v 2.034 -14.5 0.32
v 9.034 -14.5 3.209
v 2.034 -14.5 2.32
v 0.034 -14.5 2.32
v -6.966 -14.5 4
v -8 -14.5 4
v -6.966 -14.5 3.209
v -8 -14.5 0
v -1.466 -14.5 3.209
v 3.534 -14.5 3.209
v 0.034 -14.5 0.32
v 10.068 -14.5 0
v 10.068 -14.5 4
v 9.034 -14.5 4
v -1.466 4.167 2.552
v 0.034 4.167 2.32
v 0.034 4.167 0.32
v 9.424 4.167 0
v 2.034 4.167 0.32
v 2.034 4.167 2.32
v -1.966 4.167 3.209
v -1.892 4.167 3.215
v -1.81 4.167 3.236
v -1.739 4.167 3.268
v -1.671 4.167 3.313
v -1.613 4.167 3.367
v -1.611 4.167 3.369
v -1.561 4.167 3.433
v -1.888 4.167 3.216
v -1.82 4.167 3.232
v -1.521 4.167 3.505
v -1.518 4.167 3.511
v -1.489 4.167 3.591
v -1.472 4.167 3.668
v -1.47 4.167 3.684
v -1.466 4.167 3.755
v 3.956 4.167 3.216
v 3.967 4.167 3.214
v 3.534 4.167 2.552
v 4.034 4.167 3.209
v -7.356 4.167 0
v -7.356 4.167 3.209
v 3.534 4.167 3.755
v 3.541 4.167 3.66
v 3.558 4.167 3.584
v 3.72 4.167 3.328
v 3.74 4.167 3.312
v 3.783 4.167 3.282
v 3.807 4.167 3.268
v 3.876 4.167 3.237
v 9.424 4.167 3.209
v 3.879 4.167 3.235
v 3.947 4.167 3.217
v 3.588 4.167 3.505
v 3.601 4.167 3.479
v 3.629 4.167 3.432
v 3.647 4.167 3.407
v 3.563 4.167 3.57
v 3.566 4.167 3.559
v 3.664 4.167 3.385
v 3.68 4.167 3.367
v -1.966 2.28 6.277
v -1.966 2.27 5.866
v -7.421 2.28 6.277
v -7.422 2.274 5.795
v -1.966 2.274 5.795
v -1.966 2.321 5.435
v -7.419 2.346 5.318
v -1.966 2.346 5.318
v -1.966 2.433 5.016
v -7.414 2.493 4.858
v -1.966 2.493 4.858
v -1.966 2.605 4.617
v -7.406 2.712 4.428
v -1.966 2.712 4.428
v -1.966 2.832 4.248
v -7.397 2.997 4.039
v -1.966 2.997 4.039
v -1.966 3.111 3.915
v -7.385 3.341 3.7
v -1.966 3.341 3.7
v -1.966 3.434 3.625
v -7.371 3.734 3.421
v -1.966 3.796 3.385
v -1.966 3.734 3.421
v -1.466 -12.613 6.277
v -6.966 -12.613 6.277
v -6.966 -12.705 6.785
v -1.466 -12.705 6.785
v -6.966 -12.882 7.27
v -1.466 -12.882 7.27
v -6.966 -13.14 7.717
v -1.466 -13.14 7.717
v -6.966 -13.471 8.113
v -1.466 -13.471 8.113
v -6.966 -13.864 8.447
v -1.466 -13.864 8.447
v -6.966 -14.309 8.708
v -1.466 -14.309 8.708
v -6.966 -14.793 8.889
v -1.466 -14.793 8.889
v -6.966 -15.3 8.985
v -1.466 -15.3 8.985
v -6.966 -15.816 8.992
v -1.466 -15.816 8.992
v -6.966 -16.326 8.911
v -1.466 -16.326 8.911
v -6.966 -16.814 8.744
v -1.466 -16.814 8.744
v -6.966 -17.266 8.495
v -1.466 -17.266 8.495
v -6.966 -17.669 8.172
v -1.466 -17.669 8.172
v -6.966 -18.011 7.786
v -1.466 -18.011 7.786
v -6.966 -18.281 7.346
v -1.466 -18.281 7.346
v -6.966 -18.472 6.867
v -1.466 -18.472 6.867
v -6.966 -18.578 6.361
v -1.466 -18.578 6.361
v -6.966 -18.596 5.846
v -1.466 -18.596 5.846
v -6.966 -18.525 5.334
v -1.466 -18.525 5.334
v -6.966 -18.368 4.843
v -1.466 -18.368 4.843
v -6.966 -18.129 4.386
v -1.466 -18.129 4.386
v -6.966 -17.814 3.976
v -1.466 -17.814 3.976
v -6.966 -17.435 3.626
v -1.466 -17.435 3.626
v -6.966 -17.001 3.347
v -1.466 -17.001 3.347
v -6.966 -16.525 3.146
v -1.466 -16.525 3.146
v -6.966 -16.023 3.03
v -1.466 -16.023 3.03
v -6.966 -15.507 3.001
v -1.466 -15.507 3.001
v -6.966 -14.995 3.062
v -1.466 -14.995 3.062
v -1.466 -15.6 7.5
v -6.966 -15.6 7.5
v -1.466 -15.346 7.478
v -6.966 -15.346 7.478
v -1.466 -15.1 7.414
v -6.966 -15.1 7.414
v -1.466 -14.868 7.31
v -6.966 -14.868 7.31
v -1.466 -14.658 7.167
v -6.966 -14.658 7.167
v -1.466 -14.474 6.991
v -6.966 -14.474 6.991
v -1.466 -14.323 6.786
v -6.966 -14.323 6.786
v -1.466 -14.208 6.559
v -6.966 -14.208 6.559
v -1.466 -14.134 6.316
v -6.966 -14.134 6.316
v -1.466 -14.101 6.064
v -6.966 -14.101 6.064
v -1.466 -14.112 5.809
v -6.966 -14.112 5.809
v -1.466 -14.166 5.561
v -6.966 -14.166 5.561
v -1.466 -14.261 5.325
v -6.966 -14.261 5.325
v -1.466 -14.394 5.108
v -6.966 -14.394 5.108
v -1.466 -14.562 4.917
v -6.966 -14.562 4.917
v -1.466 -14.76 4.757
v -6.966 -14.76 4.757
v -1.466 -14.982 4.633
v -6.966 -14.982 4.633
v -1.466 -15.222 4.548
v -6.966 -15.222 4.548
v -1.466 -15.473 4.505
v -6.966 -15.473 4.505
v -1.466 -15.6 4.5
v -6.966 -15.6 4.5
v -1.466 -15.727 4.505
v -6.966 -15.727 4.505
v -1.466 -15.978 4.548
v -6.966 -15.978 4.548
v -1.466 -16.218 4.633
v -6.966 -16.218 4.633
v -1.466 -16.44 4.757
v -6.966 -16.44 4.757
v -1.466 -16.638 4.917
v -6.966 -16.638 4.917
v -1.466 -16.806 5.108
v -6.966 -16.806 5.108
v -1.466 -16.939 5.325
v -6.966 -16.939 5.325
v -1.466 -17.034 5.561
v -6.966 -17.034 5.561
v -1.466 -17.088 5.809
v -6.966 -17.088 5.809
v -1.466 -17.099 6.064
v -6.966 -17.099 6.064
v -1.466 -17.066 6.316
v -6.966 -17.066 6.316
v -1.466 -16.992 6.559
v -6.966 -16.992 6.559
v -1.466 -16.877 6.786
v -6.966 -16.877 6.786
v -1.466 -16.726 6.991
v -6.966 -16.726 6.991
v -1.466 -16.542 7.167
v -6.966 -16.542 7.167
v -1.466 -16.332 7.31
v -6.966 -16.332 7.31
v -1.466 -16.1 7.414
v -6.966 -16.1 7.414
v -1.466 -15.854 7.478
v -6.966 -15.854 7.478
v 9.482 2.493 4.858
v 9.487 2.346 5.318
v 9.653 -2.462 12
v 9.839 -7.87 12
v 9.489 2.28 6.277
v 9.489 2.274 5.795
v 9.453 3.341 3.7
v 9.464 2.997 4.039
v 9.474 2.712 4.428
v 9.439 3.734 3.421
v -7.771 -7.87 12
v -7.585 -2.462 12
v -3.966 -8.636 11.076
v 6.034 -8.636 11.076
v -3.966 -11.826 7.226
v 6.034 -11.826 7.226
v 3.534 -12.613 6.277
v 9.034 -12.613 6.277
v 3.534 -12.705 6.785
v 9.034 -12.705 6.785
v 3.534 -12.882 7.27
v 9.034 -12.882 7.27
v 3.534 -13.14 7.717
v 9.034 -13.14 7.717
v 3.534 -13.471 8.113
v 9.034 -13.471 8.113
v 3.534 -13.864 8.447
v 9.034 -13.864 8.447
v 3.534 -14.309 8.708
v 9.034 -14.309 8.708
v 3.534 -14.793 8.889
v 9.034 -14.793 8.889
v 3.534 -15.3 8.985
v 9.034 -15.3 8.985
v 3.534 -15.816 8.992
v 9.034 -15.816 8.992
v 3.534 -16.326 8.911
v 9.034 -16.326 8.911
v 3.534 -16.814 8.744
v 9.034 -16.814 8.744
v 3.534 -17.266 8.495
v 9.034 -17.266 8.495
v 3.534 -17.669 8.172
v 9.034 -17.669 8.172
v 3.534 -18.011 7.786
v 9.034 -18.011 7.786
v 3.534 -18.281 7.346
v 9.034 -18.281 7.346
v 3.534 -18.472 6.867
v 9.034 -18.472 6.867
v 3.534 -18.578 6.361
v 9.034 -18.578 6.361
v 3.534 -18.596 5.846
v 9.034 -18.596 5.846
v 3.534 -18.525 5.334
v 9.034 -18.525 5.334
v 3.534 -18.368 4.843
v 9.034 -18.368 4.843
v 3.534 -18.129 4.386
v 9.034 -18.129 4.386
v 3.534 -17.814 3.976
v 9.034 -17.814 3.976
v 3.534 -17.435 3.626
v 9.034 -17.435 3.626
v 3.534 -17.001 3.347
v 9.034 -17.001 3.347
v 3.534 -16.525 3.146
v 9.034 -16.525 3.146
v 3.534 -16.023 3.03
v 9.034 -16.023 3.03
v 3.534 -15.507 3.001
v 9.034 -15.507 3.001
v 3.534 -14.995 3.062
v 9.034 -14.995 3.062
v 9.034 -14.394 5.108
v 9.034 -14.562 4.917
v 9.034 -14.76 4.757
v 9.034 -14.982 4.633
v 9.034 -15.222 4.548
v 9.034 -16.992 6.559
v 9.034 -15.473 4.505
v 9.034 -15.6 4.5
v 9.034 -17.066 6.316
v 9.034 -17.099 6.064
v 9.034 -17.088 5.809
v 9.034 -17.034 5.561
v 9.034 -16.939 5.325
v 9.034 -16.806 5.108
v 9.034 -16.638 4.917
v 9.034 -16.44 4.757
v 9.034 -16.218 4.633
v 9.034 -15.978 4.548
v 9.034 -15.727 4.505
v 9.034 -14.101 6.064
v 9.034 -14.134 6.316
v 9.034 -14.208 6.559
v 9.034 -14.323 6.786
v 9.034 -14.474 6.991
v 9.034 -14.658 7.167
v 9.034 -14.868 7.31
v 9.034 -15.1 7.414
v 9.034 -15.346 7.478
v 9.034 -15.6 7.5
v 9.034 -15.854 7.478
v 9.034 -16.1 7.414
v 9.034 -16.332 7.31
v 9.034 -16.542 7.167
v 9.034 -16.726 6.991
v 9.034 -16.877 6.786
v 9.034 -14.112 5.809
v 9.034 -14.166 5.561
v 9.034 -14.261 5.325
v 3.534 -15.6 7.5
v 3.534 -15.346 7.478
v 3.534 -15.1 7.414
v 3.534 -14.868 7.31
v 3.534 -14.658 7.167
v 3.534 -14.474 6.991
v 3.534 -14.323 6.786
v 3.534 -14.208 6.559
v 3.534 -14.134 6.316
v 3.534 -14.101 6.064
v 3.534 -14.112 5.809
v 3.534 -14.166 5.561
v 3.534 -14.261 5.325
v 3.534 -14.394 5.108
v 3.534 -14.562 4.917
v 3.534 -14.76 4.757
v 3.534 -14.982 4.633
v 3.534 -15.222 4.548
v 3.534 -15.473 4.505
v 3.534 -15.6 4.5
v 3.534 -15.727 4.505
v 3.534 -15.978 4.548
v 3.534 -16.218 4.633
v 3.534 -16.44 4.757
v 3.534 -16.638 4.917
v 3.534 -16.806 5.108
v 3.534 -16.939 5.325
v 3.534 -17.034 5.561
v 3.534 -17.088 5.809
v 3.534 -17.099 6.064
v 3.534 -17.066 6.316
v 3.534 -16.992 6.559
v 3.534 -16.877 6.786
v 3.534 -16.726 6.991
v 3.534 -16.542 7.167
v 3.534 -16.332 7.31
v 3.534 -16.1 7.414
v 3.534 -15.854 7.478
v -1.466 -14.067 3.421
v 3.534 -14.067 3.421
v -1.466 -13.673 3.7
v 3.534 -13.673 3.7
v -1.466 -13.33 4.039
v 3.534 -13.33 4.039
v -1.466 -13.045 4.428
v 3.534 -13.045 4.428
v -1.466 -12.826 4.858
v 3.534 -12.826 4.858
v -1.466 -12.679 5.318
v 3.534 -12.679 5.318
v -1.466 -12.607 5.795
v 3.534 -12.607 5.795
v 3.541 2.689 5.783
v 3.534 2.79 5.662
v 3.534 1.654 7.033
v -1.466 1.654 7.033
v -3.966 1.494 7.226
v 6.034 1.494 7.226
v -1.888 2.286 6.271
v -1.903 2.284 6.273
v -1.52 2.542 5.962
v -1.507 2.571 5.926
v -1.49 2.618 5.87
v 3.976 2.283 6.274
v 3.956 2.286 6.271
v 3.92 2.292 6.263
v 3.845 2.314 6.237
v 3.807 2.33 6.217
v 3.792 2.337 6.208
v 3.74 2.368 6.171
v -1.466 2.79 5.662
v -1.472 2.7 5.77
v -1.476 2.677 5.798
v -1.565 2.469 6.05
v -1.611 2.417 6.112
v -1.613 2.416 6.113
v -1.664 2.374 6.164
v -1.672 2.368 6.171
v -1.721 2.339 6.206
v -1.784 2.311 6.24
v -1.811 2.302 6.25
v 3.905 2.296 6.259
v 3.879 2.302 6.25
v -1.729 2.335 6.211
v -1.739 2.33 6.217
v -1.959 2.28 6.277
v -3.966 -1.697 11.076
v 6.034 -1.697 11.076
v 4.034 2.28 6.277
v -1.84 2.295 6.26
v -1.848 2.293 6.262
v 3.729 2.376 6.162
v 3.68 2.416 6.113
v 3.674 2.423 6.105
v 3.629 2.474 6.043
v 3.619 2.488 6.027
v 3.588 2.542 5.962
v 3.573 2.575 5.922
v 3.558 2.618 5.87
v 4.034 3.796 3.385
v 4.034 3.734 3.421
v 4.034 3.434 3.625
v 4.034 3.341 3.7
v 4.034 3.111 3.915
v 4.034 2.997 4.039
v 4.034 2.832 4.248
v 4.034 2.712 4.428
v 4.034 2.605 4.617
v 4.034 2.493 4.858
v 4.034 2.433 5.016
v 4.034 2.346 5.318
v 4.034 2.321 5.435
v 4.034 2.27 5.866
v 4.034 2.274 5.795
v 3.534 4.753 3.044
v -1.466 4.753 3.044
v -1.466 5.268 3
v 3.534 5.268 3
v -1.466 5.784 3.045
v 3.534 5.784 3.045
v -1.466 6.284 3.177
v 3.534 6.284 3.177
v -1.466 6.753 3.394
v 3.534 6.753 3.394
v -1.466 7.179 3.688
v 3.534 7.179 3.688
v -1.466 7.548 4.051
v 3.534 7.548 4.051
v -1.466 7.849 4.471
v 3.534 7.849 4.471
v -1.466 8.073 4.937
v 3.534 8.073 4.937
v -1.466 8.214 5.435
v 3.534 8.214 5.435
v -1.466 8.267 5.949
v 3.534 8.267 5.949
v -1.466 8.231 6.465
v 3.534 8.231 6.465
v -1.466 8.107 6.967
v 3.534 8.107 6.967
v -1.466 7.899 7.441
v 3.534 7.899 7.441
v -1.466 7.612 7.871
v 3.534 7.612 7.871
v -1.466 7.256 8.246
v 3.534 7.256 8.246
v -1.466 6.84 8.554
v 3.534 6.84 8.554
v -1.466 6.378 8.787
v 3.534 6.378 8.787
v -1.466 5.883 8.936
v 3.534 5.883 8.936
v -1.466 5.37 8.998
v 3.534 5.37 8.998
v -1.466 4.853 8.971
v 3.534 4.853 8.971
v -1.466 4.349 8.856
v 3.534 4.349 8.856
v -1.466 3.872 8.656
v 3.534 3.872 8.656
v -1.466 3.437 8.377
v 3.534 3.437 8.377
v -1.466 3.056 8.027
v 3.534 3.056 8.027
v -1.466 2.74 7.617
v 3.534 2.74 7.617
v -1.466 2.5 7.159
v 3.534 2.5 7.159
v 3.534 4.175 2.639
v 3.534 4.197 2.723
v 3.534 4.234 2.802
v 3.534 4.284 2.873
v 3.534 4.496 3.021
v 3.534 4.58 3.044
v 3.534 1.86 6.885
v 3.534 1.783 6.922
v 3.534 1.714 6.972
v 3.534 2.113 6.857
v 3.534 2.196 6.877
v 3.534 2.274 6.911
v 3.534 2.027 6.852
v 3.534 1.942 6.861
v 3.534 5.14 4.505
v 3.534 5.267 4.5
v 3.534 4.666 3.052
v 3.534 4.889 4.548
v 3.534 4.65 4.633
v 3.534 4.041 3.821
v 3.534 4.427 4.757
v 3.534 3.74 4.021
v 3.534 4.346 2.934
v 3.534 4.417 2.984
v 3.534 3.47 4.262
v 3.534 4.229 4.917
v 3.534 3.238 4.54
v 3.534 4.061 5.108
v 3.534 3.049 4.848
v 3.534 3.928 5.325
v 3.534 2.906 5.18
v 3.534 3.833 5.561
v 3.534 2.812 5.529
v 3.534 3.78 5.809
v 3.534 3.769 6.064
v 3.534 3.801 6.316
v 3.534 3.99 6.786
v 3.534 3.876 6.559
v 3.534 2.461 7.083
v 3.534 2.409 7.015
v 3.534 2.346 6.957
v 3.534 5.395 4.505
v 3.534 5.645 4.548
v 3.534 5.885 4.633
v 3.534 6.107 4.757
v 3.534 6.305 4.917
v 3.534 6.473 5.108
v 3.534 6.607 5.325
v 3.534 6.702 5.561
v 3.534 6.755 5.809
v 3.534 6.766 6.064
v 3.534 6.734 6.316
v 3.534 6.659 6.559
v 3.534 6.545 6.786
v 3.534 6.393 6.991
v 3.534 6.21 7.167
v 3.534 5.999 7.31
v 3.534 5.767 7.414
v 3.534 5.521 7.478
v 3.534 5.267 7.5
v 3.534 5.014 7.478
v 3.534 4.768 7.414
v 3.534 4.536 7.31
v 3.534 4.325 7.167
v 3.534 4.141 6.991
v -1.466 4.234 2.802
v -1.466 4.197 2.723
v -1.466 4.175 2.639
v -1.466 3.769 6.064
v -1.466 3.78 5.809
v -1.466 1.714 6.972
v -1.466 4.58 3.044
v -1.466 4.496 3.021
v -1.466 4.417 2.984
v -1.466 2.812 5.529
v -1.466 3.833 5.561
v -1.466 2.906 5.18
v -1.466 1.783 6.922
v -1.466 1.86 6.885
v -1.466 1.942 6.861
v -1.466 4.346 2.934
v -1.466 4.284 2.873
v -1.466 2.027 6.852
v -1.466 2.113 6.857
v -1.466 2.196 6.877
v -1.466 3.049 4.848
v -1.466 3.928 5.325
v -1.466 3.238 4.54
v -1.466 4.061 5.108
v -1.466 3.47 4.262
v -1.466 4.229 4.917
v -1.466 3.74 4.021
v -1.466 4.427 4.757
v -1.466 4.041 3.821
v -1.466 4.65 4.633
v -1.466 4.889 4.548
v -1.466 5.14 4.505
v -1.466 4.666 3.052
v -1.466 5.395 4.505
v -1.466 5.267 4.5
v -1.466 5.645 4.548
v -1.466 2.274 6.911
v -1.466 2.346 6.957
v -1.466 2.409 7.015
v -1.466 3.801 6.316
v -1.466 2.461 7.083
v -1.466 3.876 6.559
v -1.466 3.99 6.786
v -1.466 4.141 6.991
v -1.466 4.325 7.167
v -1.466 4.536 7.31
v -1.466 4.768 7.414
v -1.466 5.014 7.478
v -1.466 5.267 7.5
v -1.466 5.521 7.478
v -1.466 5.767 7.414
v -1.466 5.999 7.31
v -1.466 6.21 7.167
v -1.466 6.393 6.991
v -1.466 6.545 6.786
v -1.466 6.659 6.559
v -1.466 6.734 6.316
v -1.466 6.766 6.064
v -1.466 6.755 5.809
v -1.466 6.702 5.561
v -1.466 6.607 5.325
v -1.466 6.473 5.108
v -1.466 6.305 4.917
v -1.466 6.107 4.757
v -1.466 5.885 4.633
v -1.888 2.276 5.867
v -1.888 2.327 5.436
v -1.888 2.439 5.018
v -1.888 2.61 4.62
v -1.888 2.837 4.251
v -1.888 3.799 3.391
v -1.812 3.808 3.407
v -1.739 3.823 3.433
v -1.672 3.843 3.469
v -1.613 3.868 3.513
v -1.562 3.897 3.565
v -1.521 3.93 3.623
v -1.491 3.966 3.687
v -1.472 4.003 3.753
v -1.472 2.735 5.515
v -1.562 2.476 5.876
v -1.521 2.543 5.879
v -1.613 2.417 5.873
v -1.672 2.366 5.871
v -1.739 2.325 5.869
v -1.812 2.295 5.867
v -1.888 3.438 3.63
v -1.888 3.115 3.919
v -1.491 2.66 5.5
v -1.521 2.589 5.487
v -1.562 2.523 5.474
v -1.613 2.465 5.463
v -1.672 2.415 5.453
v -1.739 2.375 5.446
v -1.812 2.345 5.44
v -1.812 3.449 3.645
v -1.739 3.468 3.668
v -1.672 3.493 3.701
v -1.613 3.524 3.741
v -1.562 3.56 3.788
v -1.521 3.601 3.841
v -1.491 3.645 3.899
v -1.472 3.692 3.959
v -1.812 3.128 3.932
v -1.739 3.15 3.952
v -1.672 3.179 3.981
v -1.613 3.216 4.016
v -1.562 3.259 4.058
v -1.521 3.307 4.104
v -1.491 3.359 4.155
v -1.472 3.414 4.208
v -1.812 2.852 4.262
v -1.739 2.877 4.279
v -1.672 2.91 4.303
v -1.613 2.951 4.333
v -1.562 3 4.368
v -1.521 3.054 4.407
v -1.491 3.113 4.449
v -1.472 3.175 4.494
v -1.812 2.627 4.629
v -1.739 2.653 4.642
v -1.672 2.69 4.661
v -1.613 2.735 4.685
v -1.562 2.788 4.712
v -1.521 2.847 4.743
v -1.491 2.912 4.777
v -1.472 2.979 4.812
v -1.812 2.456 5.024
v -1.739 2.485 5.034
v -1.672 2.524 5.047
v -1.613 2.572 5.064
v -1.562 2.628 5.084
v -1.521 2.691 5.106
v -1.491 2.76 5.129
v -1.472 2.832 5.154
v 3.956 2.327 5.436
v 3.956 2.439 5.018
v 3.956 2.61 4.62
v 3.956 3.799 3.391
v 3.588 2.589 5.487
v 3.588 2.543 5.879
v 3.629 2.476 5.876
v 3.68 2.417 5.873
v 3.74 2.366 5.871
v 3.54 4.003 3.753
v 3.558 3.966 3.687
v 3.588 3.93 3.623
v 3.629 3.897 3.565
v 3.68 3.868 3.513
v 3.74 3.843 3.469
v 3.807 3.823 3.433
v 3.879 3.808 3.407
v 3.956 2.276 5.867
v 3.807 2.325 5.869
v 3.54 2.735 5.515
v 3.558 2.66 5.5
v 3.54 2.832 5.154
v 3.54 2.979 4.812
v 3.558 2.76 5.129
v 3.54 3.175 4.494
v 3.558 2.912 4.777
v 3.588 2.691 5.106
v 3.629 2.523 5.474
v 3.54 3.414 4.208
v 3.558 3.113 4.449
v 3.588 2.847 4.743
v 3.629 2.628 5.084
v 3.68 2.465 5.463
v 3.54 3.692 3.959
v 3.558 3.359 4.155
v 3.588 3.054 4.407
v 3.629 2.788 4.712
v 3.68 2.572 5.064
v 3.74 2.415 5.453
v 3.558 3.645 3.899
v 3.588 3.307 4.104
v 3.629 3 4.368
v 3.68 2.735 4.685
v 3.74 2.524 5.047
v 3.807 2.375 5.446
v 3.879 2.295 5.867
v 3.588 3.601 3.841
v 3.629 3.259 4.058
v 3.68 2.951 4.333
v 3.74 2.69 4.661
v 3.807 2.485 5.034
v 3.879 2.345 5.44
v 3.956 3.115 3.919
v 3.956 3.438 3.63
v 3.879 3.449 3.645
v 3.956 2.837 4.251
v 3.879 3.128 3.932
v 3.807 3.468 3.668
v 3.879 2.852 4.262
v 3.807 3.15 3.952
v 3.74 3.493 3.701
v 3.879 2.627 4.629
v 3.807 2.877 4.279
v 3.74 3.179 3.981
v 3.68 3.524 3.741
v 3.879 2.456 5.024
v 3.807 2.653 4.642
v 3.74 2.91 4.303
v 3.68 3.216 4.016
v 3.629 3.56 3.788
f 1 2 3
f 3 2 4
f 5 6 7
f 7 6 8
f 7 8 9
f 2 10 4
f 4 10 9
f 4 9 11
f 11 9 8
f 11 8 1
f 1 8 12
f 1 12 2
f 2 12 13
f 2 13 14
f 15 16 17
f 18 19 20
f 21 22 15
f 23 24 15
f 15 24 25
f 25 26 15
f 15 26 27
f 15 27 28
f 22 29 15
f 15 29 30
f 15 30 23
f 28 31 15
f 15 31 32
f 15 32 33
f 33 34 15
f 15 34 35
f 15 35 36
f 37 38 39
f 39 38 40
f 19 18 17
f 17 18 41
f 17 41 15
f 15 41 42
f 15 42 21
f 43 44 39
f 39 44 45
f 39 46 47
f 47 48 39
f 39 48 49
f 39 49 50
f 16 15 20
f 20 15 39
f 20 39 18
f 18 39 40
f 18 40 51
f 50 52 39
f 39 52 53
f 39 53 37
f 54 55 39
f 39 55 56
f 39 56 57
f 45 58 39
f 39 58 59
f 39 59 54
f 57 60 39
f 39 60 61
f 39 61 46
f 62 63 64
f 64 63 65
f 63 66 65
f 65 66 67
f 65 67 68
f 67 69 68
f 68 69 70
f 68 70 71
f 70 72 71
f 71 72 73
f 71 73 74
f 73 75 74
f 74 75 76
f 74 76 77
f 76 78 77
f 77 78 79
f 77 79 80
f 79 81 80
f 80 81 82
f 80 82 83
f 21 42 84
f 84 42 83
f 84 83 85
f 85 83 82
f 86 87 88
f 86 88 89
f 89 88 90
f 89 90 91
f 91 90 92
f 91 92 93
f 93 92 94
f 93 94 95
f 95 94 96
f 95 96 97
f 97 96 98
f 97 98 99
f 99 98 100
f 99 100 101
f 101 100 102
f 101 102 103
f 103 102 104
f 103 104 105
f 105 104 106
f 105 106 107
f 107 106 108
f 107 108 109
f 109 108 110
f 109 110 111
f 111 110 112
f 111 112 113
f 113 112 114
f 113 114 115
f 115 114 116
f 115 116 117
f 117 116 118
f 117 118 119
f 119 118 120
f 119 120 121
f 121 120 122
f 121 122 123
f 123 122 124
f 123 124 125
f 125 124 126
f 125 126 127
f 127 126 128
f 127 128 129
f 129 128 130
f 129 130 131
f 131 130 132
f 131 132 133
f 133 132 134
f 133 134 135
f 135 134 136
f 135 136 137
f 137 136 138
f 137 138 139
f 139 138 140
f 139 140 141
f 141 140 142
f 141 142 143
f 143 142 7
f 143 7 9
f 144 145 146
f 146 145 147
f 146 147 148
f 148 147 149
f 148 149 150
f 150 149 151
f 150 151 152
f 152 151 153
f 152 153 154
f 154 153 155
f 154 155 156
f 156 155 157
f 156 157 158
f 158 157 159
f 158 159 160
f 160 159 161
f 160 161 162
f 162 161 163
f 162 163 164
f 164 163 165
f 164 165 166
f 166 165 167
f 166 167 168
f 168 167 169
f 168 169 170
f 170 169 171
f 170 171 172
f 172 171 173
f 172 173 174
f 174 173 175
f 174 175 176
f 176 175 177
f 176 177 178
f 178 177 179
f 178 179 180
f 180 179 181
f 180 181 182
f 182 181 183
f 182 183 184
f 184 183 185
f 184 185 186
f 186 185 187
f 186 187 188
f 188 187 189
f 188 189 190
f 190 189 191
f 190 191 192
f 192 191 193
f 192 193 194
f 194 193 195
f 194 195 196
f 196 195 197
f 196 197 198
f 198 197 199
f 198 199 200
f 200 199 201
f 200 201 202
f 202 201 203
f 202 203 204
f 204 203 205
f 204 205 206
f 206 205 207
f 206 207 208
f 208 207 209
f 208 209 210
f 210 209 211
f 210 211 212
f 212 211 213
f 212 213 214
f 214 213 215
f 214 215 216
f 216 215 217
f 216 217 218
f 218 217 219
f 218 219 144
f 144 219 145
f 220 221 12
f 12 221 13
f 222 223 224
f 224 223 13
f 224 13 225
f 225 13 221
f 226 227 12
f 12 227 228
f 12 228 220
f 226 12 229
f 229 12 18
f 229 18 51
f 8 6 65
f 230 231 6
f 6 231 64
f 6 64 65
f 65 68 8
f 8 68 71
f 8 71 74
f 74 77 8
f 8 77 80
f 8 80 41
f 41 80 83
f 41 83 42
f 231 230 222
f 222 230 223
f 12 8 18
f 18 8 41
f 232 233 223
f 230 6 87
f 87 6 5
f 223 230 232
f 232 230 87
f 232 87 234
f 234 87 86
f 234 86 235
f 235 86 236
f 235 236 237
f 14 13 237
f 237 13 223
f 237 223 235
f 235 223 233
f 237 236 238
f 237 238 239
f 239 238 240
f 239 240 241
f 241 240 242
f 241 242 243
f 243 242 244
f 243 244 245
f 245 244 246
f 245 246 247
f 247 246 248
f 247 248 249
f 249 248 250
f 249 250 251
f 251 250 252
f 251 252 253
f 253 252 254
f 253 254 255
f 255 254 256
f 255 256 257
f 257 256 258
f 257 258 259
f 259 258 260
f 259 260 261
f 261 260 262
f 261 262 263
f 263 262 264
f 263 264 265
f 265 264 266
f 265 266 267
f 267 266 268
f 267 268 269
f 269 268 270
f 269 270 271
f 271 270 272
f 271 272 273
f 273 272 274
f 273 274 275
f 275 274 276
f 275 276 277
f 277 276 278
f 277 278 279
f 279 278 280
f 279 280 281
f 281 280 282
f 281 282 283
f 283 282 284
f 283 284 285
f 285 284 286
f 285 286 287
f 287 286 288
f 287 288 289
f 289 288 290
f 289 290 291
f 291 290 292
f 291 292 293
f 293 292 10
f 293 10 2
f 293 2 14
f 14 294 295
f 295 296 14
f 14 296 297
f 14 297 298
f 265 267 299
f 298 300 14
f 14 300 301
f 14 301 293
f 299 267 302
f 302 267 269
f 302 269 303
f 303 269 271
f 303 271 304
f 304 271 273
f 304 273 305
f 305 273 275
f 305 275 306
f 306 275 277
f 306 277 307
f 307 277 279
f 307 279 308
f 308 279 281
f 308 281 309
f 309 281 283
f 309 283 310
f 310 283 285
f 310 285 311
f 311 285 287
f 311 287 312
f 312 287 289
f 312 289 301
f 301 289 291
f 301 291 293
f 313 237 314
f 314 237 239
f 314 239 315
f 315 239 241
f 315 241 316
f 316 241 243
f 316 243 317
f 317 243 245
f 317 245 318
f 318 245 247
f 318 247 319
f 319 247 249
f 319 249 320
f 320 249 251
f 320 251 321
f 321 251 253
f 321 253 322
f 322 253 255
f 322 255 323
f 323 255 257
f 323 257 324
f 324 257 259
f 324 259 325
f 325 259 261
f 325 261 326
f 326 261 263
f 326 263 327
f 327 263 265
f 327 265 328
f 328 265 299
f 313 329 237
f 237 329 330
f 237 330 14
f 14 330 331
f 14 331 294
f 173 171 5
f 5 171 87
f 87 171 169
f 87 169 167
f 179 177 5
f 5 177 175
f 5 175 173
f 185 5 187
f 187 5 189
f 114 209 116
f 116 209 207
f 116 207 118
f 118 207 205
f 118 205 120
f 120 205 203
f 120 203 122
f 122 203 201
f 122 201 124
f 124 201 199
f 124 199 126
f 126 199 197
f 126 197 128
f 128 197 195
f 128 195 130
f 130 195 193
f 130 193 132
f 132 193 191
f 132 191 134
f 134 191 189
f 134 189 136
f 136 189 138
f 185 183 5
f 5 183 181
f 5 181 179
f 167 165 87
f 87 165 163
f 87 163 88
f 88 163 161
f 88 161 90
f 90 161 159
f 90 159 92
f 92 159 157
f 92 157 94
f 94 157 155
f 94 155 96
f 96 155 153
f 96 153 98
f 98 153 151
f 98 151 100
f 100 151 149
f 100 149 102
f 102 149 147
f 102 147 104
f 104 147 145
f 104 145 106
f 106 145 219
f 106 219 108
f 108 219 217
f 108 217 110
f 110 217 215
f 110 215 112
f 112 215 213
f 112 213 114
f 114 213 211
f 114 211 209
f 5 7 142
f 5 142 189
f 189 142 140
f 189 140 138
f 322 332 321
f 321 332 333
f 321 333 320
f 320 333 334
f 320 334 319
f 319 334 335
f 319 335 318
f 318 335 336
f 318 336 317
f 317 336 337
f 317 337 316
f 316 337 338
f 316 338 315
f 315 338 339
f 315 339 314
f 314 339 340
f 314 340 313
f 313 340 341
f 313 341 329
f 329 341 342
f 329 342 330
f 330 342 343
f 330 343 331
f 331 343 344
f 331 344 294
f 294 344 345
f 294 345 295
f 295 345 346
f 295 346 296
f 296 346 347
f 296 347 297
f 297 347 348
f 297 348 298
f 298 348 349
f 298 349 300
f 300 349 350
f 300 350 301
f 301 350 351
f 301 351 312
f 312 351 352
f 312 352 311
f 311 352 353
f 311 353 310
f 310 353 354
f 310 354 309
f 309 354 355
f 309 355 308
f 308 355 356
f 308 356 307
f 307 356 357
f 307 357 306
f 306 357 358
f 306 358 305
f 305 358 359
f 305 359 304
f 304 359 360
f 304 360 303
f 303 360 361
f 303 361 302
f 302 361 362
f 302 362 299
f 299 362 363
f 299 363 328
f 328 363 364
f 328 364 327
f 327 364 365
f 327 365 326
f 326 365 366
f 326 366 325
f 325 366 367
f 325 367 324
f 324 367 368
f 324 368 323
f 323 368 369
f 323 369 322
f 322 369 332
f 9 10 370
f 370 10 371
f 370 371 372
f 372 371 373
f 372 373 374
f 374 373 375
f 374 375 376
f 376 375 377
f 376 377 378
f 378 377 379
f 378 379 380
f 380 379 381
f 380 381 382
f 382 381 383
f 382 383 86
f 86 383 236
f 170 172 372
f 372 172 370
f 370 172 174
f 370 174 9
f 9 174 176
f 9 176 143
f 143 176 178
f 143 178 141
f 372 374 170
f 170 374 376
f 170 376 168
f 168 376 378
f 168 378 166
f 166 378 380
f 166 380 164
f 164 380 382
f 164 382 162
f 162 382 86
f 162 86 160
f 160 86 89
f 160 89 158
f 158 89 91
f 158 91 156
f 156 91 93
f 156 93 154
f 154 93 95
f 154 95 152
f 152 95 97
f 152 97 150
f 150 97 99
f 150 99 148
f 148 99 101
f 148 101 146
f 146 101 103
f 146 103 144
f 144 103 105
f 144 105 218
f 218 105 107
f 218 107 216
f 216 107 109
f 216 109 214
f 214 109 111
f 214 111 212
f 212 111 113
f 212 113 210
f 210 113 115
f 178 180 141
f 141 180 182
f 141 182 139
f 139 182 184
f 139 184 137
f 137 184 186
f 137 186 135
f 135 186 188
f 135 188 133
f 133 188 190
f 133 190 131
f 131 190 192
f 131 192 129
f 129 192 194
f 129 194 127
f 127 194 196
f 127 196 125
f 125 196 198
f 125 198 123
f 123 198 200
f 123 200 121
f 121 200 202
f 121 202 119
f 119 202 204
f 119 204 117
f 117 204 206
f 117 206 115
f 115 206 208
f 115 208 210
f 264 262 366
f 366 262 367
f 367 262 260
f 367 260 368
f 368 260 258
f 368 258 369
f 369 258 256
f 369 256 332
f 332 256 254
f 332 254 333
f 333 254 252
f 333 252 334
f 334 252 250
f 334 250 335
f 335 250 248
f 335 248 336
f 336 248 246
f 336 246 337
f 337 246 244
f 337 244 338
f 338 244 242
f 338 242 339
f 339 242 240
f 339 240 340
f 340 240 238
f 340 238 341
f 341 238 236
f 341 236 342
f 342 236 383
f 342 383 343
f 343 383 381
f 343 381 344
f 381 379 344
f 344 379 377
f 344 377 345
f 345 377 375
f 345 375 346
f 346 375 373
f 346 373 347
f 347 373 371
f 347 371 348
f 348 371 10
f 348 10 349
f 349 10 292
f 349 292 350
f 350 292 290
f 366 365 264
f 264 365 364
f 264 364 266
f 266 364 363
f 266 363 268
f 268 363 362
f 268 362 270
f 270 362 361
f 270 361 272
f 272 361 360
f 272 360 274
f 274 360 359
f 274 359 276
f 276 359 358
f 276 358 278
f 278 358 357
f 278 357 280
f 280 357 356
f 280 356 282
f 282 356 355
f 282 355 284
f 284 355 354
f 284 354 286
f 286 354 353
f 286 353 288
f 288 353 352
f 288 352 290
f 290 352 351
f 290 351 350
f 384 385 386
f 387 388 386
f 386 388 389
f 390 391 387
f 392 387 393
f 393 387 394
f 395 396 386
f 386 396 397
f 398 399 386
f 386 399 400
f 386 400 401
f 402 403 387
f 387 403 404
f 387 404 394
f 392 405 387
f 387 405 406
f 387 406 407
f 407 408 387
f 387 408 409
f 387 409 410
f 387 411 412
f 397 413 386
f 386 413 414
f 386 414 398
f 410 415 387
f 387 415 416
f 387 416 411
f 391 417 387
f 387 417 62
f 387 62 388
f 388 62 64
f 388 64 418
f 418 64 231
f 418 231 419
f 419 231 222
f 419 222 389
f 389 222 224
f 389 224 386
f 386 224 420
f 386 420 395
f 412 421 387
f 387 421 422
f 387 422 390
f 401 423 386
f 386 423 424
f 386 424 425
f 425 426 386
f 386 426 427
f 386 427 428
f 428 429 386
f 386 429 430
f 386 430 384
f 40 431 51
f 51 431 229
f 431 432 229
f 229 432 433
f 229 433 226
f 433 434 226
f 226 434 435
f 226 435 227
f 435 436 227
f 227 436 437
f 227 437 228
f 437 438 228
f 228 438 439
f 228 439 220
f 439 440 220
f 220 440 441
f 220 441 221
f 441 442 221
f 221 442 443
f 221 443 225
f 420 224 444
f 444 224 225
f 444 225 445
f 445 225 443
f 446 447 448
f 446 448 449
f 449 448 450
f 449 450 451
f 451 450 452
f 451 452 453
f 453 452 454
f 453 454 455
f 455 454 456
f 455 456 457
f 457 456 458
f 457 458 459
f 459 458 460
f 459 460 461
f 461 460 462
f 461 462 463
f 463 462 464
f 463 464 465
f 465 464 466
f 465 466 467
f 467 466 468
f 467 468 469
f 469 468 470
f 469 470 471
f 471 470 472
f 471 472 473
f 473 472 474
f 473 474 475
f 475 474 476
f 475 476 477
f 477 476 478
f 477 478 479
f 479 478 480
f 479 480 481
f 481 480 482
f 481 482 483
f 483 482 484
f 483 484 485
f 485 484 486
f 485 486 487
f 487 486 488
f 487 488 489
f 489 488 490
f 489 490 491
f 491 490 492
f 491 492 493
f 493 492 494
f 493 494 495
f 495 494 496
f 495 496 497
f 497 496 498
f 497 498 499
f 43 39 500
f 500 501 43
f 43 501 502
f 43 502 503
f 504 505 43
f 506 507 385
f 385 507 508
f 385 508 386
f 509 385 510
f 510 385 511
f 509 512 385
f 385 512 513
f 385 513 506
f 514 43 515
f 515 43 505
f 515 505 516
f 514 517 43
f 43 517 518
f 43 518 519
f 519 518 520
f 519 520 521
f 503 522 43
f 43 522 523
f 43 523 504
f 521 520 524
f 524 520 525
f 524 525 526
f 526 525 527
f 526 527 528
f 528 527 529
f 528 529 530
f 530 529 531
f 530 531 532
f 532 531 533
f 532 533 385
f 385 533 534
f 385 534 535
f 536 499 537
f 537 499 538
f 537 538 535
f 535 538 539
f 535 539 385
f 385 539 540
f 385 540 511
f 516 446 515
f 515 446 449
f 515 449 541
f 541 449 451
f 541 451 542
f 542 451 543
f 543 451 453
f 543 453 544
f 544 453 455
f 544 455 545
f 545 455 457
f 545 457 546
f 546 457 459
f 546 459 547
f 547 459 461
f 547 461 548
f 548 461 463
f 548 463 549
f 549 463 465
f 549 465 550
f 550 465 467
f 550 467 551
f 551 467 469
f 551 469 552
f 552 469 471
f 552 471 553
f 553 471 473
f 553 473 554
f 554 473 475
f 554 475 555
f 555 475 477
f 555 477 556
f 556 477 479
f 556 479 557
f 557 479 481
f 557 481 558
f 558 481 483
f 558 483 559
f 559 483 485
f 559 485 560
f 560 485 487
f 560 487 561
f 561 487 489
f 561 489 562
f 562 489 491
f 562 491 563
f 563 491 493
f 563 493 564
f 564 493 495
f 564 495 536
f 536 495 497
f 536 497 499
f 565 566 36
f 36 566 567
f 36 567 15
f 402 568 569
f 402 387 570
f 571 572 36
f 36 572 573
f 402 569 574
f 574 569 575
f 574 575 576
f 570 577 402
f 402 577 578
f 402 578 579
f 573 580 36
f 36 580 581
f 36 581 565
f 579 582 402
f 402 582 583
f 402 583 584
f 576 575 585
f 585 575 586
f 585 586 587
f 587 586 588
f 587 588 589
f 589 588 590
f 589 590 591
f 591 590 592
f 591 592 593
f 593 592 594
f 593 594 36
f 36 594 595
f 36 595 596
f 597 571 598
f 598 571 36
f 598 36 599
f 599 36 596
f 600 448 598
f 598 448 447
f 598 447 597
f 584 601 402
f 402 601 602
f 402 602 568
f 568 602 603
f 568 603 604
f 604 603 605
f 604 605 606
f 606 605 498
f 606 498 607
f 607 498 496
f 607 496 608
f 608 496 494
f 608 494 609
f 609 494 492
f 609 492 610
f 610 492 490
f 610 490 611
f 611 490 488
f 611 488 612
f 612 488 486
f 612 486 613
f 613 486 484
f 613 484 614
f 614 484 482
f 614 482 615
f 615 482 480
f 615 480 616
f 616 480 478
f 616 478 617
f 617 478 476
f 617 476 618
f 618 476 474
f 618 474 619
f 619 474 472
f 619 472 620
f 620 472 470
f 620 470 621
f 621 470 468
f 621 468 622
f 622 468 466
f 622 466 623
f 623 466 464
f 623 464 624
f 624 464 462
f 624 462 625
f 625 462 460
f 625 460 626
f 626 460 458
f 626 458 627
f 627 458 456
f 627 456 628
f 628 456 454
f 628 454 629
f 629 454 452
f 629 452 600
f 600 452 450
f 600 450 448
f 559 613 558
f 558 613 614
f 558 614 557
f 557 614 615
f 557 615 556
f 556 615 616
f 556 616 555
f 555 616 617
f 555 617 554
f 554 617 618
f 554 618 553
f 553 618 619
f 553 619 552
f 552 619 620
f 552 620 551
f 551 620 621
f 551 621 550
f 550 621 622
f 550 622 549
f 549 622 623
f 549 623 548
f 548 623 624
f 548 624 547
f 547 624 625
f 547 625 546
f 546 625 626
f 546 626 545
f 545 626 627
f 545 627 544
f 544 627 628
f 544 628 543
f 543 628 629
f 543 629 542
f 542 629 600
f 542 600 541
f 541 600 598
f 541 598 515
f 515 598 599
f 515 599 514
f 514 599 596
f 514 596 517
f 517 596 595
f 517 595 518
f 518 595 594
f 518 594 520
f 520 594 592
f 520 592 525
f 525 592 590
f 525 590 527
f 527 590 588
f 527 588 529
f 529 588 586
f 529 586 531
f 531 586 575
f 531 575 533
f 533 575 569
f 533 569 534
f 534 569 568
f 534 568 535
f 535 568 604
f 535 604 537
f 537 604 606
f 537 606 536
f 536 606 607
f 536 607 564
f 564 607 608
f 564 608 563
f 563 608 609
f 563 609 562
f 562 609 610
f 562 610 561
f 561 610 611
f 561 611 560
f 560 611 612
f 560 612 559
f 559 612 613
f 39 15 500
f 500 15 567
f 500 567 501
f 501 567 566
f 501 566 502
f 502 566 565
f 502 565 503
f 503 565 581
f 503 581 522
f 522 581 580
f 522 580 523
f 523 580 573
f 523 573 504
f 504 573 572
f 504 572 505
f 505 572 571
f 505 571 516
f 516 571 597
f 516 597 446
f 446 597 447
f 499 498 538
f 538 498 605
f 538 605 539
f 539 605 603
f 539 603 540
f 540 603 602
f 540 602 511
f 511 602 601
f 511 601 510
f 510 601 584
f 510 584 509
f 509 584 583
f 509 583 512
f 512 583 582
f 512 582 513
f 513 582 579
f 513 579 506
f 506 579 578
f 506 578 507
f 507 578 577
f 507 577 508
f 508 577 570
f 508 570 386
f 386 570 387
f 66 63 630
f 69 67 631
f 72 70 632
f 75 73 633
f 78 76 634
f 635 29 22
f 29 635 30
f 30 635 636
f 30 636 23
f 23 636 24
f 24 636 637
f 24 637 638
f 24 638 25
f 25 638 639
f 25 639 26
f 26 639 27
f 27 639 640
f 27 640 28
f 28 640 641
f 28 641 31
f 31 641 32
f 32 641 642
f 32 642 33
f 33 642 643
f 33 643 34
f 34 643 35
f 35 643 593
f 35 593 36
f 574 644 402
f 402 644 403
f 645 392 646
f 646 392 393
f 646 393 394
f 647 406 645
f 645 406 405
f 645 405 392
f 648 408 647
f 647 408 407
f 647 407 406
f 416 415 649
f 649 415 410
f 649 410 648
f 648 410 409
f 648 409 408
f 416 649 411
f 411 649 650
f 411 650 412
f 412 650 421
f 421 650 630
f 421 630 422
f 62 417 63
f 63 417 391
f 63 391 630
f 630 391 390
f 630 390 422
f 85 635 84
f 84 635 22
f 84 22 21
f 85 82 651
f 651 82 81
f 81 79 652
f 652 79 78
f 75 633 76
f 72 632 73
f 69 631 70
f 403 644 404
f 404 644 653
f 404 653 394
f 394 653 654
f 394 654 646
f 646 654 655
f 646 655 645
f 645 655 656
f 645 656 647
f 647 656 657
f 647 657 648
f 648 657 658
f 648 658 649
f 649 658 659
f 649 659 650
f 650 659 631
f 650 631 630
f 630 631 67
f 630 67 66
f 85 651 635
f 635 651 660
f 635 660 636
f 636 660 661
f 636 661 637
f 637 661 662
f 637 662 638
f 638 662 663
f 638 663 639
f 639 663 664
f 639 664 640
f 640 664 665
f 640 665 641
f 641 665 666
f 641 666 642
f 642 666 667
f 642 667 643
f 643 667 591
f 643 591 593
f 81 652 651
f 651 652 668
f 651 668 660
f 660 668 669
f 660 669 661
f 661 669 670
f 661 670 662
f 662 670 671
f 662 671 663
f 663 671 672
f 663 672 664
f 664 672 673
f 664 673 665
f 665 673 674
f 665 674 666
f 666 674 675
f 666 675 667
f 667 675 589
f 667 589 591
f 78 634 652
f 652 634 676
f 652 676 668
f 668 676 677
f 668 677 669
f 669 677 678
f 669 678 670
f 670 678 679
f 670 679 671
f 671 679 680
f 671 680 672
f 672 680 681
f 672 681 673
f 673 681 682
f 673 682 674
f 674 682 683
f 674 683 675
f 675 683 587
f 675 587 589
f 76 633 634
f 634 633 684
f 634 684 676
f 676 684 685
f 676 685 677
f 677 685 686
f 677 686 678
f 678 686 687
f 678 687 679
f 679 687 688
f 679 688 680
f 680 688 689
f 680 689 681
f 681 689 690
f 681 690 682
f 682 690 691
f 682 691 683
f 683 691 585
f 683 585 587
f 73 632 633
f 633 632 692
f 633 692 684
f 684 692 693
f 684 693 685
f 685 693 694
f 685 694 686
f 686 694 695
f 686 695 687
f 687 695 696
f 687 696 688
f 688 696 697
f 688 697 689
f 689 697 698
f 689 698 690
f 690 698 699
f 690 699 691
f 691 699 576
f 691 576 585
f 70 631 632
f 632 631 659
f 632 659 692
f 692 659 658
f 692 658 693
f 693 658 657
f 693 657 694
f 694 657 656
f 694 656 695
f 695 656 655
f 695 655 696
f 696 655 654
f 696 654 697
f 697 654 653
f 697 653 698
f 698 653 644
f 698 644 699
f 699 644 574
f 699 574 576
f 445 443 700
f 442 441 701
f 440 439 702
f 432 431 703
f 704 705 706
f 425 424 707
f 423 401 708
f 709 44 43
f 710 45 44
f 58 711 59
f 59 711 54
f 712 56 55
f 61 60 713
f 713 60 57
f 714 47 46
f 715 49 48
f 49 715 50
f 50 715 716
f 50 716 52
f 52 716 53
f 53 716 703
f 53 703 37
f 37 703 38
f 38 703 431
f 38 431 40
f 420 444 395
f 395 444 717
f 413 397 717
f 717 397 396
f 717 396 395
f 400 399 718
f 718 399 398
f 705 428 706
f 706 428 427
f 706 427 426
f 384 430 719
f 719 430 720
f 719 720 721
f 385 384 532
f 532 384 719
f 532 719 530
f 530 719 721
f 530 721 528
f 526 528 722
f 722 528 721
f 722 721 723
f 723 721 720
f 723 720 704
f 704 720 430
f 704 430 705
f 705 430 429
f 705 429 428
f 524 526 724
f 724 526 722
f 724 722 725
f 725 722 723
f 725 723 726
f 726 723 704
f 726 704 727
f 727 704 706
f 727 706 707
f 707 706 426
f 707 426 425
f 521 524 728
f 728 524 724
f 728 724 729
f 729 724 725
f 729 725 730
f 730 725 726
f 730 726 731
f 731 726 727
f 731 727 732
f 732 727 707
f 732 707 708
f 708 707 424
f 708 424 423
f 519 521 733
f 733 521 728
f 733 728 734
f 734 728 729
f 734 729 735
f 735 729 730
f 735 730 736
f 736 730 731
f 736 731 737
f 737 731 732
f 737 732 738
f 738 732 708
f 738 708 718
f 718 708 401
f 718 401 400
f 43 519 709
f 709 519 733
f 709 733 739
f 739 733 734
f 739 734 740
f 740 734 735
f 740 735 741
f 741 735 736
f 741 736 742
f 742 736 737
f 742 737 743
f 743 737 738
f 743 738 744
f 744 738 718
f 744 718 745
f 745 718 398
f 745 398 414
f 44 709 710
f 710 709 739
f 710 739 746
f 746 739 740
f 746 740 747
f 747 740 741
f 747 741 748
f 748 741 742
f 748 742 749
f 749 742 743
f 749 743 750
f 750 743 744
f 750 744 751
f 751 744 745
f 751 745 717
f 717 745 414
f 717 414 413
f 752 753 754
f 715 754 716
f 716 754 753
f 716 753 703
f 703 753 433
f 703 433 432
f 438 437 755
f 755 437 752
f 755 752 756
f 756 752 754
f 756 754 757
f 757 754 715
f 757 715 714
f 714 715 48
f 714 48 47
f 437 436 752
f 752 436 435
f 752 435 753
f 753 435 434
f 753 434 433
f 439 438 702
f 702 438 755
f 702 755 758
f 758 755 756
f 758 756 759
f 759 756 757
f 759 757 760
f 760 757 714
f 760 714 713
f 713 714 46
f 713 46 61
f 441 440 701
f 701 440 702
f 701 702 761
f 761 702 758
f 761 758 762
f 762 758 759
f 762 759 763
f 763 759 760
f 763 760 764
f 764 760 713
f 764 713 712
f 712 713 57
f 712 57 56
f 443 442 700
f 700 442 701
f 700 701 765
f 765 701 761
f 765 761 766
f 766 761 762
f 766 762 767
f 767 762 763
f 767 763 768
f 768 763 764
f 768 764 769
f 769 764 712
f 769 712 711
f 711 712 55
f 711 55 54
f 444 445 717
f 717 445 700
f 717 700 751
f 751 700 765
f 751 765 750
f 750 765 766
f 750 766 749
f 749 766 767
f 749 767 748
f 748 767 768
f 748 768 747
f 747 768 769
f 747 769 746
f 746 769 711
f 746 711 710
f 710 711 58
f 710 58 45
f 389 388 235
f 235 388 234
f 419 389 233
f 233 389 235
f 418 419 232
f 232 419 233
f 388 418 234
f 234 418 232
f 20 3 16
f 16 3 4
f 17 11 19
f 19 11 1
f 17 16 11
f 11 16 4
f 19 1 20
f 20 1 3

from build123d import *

# Parameters (mm, degrees)
BOSS_EXTRUDE2_DEPTH             = 12
CUT_EXTRUDE2_DEPTH              = 22.571014648492383
CUT_EXTRUDE2_DEPTH_BACK         = 22.571014648492383
SKETCH17_R                      = 3.0000000000000298
SKETCH17_R_2                    = 1.5000000000000007
BOSS_EXTRUDE3_DEPTH             = 2.5
CUT_EXTRUDE3_DEPTH              = 25.679395227729078
CUT_EXTRUDE3_DEPTH_BACK         = 25.679395227729078
SKETCH19_R                      = 1.4999999999999996
BOSS_EXTRUDE4_DEPTH             = 8
SKETCH19_3_R                    = 3.0000000000000004
CUT_EXTRUDE4_DEPTH              = 2.5
CUT_EXTRUDE5_START              = 10
SKETCH20_R                      = 2.9999999999999996
CUT_EXTRUDE5_DEPTH              = 10
SKETCH21_R                      = 2.999999999999999
CUT_EXTRUDE6_DEPTH              = 10
FILLET6_R                       = 0.5000000000000004
FILLET7_R                       = 0.5000000000000004
FILLET8_R                       = 0.5000000000000004
CUT_EXTRUDE8_DEPTH              = 25.679395276352636
CUT_EXTRUDE8_DEPTH_BACK         = 25.679395276352636
CUT_EXTRUDE9_DEPTH              = 24.90754642395463
CUT_EXTRUDE9_DEPTH_BACK         = 24.90754642395463
SKETCH26_R                      = 3
SKETCH27_R                      = 2.9999999999999996
SKETCH27_R_2                    = 1.4999999999999996
BOSS_EXTRUDE6_DEPTH             = 2.5
FILLET9_R                       = 0.5
FILLET10_R                      = 0.5
CUT_EXTRUDE10_REACH             = 22.744
SKETCH29_W                      = 10
SKETCH29_H                      = 3.8498556304138605
CUT_EXTRUDE10_DIRECTION_2_REACH = 22.744
CUT_EXTRUDE11_DEPTH             = 1


with BuildPart() as part:
    # Sketch1 → Boss-Extrude2 (new body)
    with BuildSketch(Plane.XY):
        Polygon((-7.999999999999995, -14.500000000000002), (-6.966131724806635, 15.482179980607619), (9.033868275193369, 15.482179980607619), (10.067736550386755, -14.500000000000002), align=None)
    extrude(amount=BOSS_EXTRUDE2_DEPTH)

    # Sketch16 → Cut-Extrude2 (cut, two sides: drawn at the far end of the back side and taken through both)
    with BuildSketch(Plane(origin=(1.0338682751933665, 0, 0), x_dir=(0, 0, -1), z_dir=(1, 0, 0)).offset(-CUT_EXTRUDE2_DEPTH_BACK)):
        Polygon((-12, 8.852541981440545), (-4, 15.482179980607619), (-12, 15.482179980607619), align=None)
    extrude(amount=CUT_EXTRUDE2_DEPTH + CUT_EXTRUDE2_DEPTH_BACK, mode=Mode.SUBTRACT)

    # Sketch17 → Boss-Extrude3 (add, symmetric)
    with BuildSketch(Plane(origin=(1.0338682751933665, 0, 0), x_dir=(0, 0, -1), z_dir=(1, 0, 0))):
        with Locations((-6.000000000000029, 16.582179980607627)):
            Circle(SKETCH17_R)
        with Locations((-6, 16.58217998060762)):
            Circle(SKETCH17_R_2, mode=Mode.SUBTRACT)
    extrude(amount=BOSS_EXTRUDE3_DEPTH, both=True)

    # Sketch18 → Cut-Extrude3 (cut, two sides: drawn at the far end of the back side and taken through both)
    with BuildSketch(Plane(origin=(1.0338682751933665, 0, 0), x_dir=(0, 0, -1), z_dir=(1, 0, 0)).offset(-CUT_EXTRUDE3_DEPTH_BACK)):
        Polygon((-12, -14.500000000000002), (-4, -14.500000000000002), (-12, -7.870362000832929), align=None)
    extrude(amount=CUT_EXTRUDE3_DEPTH + CUT_EXTRUDE3_DEPTH_BACK, mode=Mode.SUBTRACT)

    # Sketch19 → Boss-Extrude4 (add, symmetric)
    with BuildSketch(Plane(origin=(1.0338682751933665, 0, 0), x_dir=(0, 0, -1), z_dir=(1, 0, 0))):
        with BuildLine():
            ThreePointArc((-8.791057147390573, -14.500000000000002), (-6.5598341530436866, -18.547301430306355), (-2.9999999999999996, -15.600000000000003))
            ThreePointArc((-2.9999999999999996, -15.600000000000003), (-3.0526985696936495, -15.040165846956317), (-3.2089428526094275, -14.500000000000002))
            ThreePointArc((-3.2089428526094275, -14.500000000000002), (-6, -12.600000000000003), (-8.791057147390573, -14.500000000000002))
        make_face()
        with Locations((-6, -15.600000000000003)):
            Circle(SKETCH19_R, mode=Mode.SUBTRACT)
    extrude(amount=BOSS_EXTRUDE4_DEPTH, both=True)

    # Sketch19<3> → Cut-Extrude4 (cut, symmetric)
    with BuildSketch(Plane(origin=(1.0338682751933665, 0, 0), x_dir=(0, 0, -1), z_dir=(1, 0, 0))):
        with Locations((-6, -15.600000000000003)):
            Circle(SKETCH19_3_R)
    extrude(amount=CUT_EXTRUDE4_DEPTH, both=True, mode=Mode.SUBTRACT)

    # Sketch20 → Cut-Extrude5 (cut)
    with BuildSketch(Plane(origin=(3.5338682751933668, 0, 0), x_dir=(0, 0, -1), z_dir=(1, 0, 0)).offset(CUT_EXTRUDE5_START)):
        with Locations((-6, 16.58217998060762)):
            Circle(SKETCH20_R)
    extrude(amount=-CUT_EXTRUDE5_DEPTH, mode=Mode.SUBTRACT)

    # Sketch21 → Cut-Extrude6 (cut)
    with BuildSketch(Plane.ZY.offset(1.4661317248066335)):
        with Locations((6, 16.58217998060762)):
            Circle(SKETCH21_R)
    extrude(amount=CUT_EXTRUDE6_DEPTH, mode=Mode.SUBTRACT)

    # Fillet6
    fillet6_edges = [part.edges().sort_by_distance(p)[0] for p in [
        (1.0338682751933665, 13.59501804601977, 6.277242811538059),
    ]]
    fillet(fillet6_edges, radius=FILLET6_R)

    # Fillet7
    fillet7_edges = [part.edges().sort_by_distance(p)[0] for p in [
        (1.0338682751933665, 15.482179980607619, 3.208942852609428),
    ]]
    fillet(fillet7_edges, radius=FILLET7_R)

    # Fillet8
    fillet8_edges = [part.edges().sort_by_distance(p)[0] for p in [
        (3.5338682751933668, 14.026824950601753, 4.428325520146199),
        (-1.4661317248066335, 14.026824950601755, 4.428325520146199),
    ]]
    fillet(fillet8_edges, radius=FILLET8_R)

    # Sketch23 → Cut-Extrude8 (cut, two sides: drawn at the far end of the back side and taken through both)
    with BuildSketch(Plane(origin=(1.0338682751933665, 0, 0), x_dir=(0, 0, -1), z_dir=(1, 0, 0)).offset(-CUT_EXTRUDE8_DEPTH_BACK)):
        Polygon((0, 4.167360981024079), (0, 23.255957395128362), (-11.999999999999998, 23.255957395128362), (-11.999999999999998, -2.4622770181429927), (-4.000000000000001, 4.167360981024078), align=None)
    extrude(amount=CUT_EXTRUDE8_DEPTH + CUT_EXTRUDE8_DEPTH_BACK, mode=Mode.SUBTRACT)

    # Sketch26 → Cut-Extrude9 (cut, two sides: drawn at the far end of the back side and taken through both)
    with BuildSketch(Plane(origin=(1.0338682751933665, 0, 0), x_dir=(0, 0, -1), z_dir=(1, 0, 0)).offset(-CUT_EXTRUDE9_DEPTH_BACK)):
        with Locations((-6, 5.26736098102408)):
            Circle(SKETCH26_R)
        with BuildLine():
            ThreePointArc((-4.980196097281473, 4.167360981024053), (-7.374719217527308, 5.867483529309931), (-4.5, 5.26736098102408))
            ThreePointArc((-4.5, 5.26736098102408), (-4.625280782472692, 4.667238432738228), (-4.980196097281473, 4.167360981024053))
        make_face(mode=Mode.SUBTRACT)
    extrude(amount=CUT_EXTRUDE9_DEPTH + CUT_EXTRUDE9_DEPTH_BACK, mode=Mode.SUBTRACT)

    # Sketch27 → Boss-Extrude6 (add, symmetric)
    with BuildSketch(Plane(origin=(1.0338682751933665, 0, 0), x_dir=(0, 0, -1), z_dir=(1, 0, 0))):
        with Locations((-6, 5.26736098102408)):
            Circle(SKETCH27_R)
        with Locations((-6, 5.26736098102408)):
            Circle(SKETCH27_R_2, mode=Mode.SUBTRACT)
    extrude(amount=BOSS_EXTRUDE6_DEPTH, both=True)

    # Fillet9
    fillet9_edges = [part.edges().sort_by_distance(p)[0] for p in [
        (1.0338682751933668, 4.167360981024079, 3.2089428526094292),
        (1.0338682751933668, 2.2801990464362527, 6.277242811538037),
    ]]
    fillet(fillet9_edges, radius=FILLET9_R)

    # Fillet10
    fillet10_edges = [part.edges().sort_by_distance(p)[0] for p in [
        (-1.4661317248066335, 2.712005951018226, 4.428325520146179),
        (3.5338682751933668, 2.7120059510182273, 4.428325520146177),
    ]]
    fillet(fillet10_edges, radius=FILLET10_R)

    # Cut-Extrude10: up to this plane
    cut_extrude10_end = Plane(origin=(-7.999999999999995, -10.561614048947142, 8.752459728929596), z_dir=(0, 0.769971126082772, -0.6380787294674758))
    # Sketch29 → Cut-Extrude10 (cut, up to the surface)
    with BuildSketch(Plane(origin=(0, -5, 0), x_dir=(1, 0, 0), z_dir=(0, 1, 0)), mode=Mode.PRIVATE) as cut_extrude10_sk1:
        with Locations((1.0338682751933745, -9.151106833493746)):
            Rectangle(SKETCH29_W, SKETCH29_H)
    cut_extrude10_tool1 = split(extrude(cut_extrude10_sk1.sketch, amount=-CUT_EXTRUDE10_REACH, mode=Mode.PRIVATE), bisect_by=cut_extrude10_end, keep=Keep.BOTH, mode=Mode.PRIVATE)
    add(cut_extrude10_tool1.solids().sort_by_distance((1.033868, -5, 9.151107))[0], mode=Mode.SUBTRACT)

    # Cut-Extrude10 direction 2: up to this plane
    cut_extrude10_direction_2_end = Plane(origin=(-7.999999999999995, -2.4622770181429927, 11.999999999999998), z_dir=(0, -0.769971126082772, -0.6380787294674759))
    # Sketch29 → Cut-Extrude10 direction 2 (cut, up to the surface)
    with BuildSketch(Plane(origin=(0, -5, 0), x_dir=(1, 0, 0), z_dir=(0, 1, 0)), mode=Mode.PRIVATE) as cut_extrude10_direction_2_sk1:
        with Locations((1.0338682751933745, -9.151106833493746)):
            Rectangle(SKETCH29_W, SKETCH29_H)
    cut_extrude10_direction_2_tool1 = split(extrude(cut_extrude10_direction_2_sk1.sketch, amount=CUT_EXTRUDE10_DIRECTION_2_REACH, mode=Mode.PRIVATE), bisect_by=cut_extrude10_direction_2_end, keep=Keep.BOTH, mode=Mode.PRIVATE)
    add(cut_extrude10_direction_2_tool1.solids().sort_by_distance((1.033868, -5, 9.151107))[0], mode=Mode.SUBTRACT)

    # Sketch30 → Cut-Extrude11 (cut, symmetric)
    with BuildSketch(Plane(origin=(1.0338682751933665, 0, 0), x_dir=(0, 0, -1), z_dir=(1, 0, 0))):
        Polygon((-0.3199999999999974, -17.57883049775079), (-0.3199999999999974, 4.167360981024078), (-2.3200000000000003, 4.16736098102408), (-2.32, -17.578830497750786), align=None)
    extrude(amount=CUT_EXTRUDE11_DEPTH, both=True, mode=Mode.SUBTRACT)


solid = part.part
